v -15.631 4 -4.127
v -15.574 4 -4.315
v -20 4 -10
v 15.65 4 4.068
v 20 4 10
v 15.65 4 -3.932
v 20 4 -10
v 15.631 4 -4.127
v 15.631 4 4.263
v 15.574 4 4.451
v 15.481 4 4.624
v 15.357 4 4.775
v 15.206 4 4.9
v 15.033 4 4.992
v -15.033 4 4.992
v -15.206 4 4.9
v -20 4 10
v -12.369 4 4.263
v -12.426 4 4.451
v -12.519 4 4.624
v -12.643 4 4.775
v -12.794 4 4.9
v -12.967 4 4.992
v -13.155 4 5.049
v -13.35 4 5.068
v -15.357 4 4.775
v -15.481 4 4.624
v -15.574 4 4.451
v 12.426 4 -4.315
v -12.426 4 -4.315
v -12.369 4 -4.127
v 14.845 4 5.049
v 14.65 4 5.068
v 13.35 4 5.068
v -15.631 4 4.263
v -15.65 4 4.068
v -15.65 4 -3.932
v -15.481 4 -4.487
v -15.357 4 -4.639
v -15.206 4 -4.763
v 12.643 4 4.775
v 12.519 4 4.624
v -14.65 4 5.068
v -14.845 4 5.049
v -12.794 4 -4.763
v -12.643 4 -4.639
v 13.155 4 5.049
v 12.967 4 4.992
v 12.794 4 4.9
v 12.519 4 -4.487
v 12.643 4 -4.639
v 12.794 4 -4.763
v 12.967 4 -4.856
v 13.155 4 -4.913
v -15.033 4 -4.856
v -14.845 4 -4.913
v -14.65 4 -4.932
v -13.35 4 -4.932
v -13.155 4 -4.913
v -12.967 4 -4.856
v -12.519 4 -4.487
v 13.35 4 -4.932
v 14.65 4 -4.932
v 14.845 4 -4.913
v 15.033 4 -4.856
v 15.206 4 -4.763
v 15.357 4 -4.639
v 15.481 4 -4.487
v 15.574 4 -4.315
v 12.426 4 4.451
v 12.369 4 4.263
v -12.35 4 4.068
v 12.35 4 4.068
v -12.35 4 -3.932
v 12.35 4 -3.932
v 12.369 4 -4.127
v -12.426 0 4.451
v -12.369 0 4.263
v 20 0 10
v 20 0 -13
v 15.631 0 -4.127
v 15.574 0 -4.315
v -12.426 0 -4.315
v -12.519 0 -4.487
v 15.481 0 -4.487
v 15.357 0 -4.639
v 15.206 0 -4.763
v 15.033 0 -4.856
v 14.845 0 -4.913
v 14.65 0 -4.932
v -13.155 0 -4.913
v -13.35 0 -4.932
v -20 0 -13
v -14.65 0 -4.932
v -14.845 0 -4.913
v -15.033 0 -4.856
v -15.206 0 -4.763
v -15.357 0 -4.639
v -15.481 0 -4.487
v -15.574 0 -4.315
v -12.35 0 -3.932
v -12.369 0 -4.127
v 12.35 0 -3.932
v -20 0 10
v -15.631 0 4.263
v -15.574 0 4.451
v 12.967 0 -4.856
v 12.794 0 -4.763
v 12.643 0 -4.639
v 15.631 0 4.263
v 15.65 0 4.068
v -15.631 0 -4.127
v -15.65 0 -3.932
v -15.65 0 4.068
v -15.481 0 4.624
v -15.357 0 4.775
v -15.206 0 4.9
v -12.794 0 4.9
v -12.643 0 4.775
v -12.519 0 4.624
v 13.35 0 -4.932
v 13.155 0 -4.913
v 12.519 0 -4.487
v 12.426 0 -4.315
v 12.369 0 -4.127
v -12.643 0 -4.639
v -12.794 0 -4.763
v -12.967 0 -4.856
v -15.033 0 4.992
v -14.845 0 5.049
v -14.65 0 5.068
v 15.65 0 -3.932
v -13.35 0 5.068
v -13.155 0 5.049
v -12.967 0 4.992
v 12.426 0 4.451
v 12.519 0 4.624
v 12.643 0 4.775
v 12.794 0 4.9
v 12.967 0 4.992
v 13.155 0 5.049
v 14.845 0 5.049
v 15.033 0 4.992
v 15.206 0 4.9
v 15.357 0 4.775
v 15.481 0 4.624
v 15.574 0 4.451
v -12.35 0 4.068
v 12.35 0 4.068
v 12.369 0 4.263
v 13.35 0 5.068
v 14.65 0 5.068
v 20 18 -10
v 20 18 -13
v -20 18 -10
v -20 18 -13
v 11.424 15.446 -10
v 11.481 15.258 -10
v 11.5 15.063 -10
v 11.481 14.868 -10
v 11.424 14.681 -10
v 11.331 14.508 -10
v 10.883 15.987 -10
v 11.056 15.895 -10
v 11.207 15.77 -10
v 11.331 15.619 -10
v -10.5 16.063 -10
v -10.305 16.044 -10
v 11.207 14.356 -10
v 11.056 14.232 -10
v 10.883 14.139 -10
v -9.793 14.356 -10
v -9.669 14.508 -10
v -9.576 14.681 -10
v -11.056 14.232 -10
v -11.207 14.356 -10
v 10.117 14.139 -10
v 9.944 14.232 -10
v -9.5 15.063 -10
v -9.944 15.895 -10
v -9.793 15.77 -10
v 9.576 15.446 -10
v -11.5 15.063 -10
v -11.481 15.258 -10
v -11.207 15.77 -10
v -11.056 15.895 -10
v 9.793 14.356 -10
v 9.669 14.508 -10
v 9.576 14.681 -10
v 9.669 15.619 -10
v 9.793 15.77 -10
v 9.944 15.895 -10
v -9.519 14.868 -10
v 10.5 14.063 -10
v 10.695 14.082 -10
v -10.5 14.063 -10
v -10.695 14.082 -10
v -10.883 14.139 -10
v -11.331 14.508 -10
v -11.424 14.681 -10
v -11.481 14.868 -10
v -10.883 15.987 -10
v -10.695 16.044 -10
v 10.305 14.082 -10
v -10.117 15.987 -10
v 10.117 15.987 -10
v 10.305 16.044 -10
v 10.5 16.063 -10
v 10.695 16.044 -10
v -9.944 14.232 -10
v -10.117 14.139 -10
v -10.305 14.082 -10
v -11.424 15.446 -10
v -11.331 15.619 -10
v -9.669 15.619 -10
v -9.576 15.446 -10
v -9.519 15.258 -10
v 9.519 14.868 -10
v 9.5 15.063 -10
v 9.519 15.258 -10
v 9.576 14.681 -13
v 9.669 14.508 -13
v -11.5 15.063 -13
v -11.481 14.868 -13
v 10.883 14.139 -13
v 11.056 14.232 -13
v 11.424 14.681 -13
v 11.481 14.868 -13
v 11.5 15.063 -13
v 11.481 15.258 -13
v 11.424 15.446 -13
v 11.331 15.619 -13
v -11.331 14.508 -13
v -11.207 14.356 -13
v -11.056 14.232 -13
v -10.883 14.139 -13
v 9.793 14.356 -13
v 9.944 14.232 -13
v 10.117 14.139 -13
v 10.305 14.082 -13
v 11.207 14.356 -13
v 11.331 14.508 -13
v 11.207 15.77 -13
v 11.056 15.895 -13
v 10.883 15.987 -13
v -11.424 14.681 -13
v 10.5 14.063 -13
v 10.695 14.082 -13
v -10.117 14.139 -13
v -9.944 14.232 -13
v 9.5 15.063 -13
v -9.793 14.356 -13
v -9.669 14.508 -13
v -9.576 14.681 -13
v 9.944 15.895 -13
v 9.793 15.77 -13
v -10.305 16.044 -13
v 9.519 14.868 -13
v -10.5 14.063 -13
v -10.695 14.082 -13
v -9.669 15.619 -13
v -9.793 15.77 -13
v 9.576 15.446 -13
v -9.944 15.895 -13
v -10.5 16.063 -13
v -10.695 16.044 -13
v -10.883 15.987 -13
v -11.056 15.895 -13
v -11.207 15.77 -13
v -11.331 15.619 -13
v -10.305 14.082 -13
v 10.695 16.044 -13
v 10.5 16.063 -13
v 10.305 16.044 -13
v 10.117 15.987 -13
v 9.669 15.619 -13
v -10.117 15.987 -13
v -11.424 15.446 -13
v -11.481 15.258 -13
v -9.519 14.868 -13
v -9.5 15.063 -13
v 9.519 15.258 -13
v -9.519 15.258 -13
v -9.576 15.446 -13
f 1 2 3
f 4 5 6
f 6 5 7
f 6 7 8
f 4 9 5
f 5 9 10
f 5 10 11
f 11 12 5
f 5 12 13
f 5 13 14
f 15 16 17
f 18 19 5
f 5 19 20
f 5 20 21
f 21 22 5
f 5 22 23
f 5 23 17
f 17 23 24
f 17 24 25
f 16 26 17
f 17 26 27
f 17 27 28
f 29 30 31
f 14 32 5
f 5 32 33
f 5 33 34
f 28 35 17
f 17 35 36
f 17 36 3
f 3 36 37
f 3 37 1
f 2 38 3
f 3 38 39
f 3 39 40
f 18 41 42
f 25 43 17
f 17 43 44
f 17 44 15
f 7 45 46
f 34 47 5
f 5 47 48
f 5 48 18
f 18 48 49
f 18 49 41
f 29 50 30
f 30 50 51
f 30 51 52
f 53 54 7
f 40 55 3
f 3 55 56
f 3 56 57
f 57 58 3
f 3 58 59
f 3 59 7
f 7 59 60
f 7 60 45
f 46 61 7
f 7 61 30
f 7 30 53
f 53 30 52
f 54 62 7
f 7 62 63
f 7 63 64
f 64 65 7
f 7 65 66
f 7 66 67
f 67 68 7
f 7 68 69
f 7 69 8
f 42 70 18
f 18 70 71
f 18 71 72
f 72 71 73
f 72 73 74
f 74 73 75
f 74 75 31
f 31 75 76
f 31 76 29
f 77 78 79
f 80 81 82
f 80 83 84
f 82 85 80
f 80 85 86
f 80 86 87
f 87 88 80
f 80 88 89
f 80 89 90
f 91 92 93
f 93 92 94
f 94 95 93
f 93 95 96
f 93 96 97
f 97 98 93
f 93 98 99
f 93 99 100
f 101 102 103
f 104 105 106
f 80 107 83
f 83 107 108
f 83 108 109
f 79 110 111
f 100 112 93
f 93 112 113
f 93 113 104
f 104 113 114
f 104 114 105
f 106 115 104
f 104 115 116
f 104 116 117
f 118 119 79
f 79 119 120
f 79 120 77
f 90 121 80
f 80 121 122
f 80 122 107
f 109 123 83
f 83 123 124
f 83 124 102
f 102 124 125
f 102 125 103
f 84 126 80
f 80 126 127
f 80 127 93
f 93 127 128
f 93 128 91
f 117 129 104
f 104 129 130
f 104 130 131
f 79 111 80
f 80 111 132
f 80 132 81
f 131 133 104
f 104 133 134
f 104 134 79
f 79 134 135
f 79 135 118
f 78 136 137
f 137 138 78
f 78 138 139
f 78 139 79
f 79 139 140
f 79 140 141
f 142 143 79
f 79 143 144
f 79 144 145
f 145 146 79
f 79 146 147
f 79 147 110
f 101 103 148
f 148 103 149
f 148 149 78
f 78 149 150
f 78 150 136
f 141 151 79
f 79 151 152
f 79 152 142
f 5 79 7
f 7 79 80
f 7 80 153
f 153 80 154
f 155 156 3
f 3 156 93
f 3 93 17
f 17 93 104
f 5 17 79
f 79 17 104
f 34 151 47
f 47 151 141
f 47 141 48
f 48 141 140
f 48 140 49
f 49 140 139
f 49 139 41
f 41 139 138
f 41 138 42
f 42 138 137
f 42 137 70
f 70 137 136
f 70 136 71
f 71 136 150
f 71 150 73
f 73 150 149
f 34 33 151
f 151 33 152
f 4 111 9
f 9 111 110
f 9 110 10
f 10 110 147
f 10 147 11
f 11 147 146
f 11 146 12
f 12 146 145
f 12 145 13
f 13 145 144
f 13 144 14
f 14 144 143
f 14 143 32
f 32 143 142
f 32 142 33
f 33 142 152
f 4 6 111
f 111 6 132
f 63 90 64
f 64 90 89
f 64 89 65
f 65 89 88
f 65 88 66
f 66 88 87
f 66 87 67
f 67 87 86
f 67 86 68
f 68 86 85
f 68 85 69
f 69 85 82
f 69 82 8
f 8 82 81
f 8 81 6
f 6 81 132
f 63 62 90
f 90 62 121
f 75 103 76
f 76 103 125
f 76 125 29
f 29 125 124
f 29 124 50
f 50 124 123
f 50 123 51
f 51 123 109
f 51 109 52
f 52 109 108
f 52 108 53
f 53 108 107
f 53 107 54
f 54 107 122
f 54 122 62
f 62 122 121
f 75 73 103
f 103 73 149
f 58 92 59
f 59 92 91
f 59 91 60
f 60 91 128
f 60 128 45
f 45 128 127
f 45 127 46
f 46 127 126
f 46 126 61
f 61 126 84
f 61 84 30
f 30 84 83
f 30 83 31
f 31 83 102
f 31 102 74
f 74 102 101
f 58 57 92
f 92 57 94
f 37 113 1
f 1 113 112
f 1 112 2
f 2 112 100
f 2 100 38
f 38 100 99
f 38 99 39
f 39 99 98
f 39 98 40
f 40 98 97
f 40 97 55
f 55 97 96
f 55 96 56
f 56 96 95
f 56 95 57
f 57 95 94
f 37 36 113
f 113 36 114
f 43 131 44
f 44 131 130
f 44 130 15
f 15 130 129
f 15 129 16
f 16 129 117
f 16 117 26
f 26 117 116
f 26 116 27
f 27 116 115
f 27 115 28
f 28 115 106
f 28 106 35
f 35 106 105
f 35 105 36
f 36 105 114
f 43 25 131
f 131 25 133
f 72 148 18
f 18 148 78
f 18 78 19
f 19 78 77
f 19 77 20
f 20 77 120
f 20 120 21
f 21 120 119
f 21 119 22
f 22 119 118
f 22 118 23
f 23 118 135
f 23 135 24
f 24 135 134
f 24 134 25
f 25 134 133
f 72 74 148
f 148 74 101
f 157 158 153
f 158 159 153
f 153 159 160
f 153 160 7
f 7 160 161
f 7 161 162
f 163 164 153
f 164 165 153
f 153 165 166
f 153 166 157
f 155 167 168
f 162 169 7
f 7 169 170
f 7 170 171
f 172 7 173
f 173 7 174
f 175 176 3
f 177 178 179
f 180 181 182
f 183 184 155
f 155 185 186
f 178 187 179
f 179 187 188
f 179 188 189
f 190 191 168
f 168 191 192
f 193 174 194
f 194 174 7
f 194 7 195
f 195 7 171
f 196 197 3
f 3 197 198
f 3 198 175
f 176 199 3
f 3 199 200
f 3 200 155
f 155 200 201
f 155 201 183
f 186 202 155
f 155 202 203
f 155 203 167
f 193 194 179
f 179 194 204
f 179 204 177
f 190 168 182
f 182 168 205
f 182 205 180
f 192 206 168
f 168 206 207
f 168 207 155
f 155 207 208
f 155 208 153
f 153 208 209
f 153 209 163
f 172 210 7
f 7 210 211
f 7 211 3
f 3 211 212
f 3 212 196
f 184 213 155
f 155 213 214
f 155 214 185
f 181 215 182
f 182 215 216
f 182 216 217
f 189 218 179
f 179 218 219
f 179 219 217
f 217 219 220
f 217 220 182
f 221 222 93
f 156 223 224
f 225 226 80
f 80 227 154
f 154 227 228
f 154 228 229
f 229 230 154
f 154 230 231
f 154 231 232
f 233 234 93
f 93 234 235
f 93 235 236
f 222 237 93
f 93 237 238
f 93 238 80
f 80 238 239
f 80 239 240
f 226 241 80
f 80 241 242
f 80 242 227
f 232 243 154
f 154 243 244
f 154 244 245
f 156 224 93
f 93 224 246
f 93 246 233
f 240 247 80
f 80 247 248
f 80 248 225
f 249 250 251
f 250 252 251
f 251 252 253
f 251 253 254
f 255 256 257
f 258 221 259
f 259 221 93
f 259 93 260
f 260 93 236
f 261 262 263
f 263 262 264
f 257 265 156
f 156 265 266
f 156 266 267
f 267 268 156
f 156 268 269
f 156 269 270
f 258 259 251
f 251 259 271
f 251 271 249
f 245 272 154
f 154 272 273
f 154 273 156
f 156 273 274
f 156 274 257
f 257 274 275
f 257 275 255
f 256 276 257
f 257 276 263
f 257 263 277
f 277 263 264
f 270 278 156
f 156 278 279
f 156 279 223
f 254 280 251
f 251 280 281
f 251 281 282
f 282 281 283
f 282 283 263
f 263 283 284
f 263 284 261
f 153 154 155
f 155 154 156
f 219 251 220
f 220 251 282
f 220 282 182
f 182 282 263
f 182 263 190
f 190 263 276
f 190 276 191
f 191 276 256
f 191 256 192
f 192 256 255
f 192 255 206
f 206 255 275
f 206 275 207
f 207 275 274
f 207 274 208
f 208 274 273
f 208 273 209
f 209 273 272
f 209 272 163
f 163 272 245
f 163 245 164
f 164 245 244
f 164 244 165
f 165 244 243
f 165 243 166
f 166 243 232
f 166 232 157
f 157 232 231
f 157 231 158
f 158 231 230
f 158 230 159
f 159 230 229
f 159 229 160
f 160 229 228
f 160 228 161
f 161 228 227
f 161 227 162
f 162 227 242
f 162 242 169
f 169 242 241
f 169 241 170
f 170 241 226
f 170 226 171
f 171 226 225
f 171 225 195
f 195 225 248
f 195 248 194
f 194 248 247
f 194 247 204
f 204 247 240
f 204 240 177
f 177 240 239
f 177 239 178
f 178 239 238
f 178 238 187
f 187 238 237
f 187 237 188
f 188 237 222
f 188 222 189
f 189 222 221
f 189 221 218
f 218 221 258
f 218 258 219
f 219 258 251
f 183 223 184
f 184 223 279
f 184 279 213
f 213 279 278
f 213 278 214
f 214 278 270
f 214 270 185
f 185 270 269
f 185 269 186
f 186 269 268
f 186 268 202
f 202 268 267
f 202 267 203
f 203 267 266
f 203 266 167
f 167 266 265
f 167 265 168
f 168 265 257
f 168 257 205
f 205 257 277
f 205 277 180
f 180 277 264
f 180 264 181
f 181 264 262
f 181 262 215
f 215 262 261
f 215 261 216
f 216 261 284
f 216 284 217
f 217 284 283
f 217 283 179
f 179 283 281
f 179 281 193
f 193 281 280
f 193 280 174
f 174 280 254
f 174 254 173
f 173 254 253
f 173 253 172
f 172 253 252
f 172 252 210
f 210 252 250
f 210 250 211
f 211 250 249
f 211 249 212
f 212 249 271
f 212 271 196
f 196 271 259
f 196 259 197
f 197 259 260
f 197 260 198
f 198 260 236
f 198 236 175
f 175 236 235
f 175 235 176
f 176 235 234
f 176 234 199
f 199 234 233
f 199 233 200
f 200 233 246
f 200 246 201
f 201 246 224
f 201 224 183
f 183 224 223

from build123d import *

# Parameters (mm, degrees)
SKETCH1_W           = 40
SKETCH1_H           = 20
BOSS_EXTRUDE1_DEPTH = 4
SKETCH2_W           = 40
SKETCH2_H           = 3
BOSS_EXTRUDE2_DEPTH = 18
SKETCH3_R           = 1
CUT_EXTRUDE1_DEPTH  = 36.397740041


with BuildPart() as part:
    # Sketch1 → Boss-Extrude1 (new body)
    with BuildSketch(Plane(origin=(0, 0, 0), x_dir=(1, 0, 0), z_dir=(0, 1, 0))):
        Rectangle(SKETCH1_W, SKETCH1_H)
        with BuildLine():
            Line((13.35, 4.93188921), (14.65, 4.93188921))
            ThreePointArc((14.65, 4.93188921), (15.357106781, 4.638995992), (15.65, 3.93188921))
            Line((15.65, 3.93188921), (15.65, -4.06811079))
            ThreePointArc((15.65, -4.06811079), (15.357106781, -4.775217571), (14.65, -5.06811079))
            Line((14.65, -5.06811079), (13.35, -5.06811079))
            ThreePointArc((13.35, -5.06811079), (12.642893219, -4.775217571), (12.35, -4.06811079))
            Line((12.35, -4.06811079), (12.35, 3.93188921))
            ThreePointArc((12.35, 3.93188921), (12.642893219, 4.638995992), (13.35, 4.93188921))
        make_face(mode=Mode.SUBTRACT)
        with BuildLine():
            Line((-15.65, 3.93188921), (-15.65, -4.06811079))
            ThreePointArc((-15.65, -4.06811079), (-15.357106781, -4.775217571), (-14.65, -5.06811079))
            Line((-14.65, -5.06811079), (-13.35, -5.06811079))
            ThreePointArc((-13.35, -5.06811079), (-12.642893219, -4.775217571), (-12.35, -4.06811079))
            Line((-12.35, -4.06811079), (-12.35, 3.93188921))
            ThreePointArc((-12.35, 3.93188921), (-12.642893219, 4.638995992), (-13.35, 4.93188921))
            Line((-13.35, 4.93188921), (-14.65, 4.93188921))
            ThreePointArc((-14.65, 4.93188921), (-15.357106781, 4.638995992), (-15.65, 3.93188921))
        make_face(mode=Mode.SUBTRACT)
    extrude(amount=BOSS_EXTRUDE1_DEPTH)

    # Sketch2 → Boss-Extrude2 (add)
    with BuildSketch(Plane(origin=(0, 0, 0), x_dir=(1, 0, 0), z_dir=(0, 1, 0))):
        with Locations((0, 11.5)):
            Rectangle(SKETCH2_W, SKETCH2_H)
    extrude(amount=BOSS_EXTRUDE2_DEPTH)

    # Sketch3 → Cut-Extrude1 (cut, through all)
    with BuildSketch(Plane(origin=(0, 0, -13), x_dir=(-1, 0, 0), z_dir=(0, 0, -1))):
        with Locations((10.5, 15.063230043)):
            Circle(SKETCH3_R)
        with Locations((-10.5, 15.063230043)):
            Circle(SKETCH3_R)
    extrude(amount=-CUT_EXTRUDE1_DEPTH, mode=Mode.SUBTRACT)


solid = part.part
